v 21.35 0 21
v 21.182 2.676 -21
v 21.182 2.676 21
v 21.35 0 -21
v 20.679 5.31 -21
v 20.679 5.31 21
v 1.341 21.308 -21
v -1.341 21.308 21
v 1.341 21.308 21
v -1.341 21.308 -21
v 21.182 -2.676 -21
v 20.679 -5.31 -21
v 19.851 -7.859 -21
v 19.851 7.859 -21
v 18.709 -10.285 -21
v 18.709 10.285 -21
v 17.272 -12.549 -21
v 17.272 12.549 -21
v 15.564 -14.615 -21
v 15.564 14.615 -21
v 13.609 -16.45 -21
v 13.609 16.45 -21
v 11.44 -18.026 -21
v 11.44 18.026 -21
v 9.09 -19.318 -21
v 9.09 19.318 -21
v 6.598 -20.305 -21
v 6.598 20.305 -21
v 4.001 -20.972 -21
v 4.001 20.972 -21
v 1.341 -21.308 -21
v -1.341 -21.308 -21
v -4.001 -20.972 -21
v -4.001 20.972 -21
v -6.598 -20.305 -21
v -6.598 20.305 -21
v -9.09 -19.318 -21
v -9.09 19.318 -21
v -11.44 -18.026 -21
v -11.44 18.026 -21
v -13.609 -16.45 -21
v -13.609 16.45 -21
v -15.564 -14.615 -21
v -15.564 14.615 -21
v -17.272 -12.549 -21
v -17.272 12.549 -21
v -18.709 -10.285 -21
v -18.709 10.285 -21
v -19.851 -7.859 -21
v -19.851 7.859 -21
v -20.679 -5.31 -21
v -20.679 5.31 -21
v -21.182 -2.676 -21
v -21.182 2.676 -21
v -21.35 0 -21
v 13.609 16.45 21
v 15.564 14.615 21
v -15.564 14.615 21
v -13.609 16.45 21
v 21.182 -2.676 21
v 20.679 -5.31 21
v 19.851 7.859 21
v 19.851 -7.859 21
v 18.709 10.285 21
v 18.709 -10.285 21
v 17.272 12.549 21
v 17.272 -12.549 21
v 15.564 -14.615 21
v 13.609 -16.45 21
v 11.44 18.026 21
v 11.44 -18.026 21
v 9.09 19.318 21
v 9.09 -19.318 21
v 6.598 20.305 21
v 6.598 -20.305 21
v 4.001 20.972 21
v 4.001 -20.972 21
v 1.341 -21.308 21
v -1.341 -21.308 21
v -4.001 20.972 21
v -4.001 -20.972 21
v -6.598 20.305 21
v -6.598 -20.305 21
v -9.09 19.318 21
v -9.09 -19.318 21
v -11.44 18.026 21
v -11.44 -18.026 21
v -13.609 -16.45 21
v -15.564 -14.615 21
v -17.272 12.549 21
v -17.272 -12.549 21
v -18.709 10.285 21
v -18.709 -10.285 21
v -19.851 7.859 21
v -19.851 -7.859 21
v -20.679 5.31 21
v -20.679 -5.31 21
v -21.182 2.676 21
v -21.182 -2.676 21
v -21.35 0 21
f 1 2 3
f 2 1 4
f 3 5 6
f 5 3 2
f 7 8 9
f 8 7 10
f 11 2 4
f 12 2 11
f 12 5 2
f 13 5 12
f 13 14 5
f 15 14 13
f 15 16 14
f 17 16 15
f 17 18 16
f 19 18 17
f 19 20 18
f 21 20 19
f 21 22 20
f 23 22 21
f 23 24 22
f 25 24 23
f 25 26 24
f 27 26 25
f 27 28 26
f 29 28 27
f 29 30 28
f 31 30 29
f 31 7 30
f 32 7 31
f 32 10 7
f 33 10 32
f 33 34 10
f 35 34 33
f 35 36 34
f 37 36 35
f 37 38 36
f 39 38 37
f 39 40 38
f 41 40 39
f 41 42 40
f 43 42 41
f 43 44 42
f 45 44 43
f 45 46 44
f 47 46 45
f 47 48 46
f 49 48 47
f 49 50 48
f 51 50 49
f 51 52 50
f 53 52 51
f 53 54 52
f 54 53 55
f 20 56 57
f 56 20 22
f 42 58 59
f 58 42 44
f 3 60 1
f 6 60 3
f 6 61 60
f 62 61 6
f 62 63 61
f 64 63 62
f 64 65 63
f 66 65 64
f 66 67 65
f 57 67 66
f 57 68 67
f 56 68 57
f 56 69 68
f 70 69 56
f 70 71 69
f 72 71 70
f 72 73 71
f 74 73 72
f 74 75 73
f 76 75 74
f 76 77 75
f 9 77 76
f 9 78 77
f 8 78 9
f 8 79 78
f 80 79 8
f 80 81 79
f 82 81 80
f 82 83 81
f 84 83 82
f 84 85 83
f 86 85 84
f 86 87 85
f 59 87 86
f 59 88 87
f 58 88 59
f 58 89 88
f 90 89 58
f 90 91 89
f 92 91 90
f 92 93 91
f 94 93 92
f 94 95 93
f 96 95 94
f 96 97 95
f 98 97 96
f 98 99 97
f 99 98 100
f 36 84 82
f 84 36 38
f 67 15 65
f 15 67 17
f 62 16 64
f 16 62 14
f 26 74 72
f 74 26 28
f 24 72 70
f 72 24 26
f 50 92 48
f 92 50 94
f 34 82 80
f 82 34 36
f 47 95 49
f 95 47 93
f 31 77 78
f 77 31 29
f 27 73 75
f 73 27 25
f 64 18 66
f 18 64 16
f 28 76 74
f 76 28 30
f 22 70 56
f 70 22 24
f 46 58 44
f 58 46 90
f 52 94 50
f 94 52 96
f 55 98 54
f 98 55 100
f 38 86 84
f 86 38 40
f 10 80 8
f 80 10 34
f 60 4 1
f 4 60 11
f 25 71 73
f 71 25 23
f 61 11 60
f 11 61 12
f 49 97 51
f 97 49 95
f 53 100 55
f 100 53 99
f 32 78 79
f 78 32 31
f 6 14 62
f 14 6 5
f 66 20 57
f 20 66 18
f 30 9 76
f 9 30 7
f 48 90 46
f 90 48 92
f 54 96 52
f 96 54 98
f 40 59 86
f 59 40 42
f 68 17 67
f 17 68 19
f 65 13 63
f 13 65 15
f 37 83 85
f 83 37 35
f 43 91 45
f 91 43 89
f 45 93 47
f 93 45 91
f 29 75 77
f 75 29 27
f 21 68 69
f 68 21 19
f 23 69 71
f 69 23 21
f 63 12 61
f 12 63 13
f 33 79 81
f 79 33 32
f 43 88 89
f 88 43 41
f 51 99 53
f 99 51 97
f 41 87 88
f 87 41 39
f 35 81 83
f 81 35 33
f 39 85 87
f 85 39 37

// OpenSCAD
$fn = 50;


difference() {
	union() {
		translate(v = [0, 0, -21.0000000000]) {
			cylinder(h = 42, r = 21.3500000000);
		}
	}
	union() {
		translate(v = [0, 0, -100.0000000000]) {
			cylinder(h = 200, r = 0);
		}
	}
}
